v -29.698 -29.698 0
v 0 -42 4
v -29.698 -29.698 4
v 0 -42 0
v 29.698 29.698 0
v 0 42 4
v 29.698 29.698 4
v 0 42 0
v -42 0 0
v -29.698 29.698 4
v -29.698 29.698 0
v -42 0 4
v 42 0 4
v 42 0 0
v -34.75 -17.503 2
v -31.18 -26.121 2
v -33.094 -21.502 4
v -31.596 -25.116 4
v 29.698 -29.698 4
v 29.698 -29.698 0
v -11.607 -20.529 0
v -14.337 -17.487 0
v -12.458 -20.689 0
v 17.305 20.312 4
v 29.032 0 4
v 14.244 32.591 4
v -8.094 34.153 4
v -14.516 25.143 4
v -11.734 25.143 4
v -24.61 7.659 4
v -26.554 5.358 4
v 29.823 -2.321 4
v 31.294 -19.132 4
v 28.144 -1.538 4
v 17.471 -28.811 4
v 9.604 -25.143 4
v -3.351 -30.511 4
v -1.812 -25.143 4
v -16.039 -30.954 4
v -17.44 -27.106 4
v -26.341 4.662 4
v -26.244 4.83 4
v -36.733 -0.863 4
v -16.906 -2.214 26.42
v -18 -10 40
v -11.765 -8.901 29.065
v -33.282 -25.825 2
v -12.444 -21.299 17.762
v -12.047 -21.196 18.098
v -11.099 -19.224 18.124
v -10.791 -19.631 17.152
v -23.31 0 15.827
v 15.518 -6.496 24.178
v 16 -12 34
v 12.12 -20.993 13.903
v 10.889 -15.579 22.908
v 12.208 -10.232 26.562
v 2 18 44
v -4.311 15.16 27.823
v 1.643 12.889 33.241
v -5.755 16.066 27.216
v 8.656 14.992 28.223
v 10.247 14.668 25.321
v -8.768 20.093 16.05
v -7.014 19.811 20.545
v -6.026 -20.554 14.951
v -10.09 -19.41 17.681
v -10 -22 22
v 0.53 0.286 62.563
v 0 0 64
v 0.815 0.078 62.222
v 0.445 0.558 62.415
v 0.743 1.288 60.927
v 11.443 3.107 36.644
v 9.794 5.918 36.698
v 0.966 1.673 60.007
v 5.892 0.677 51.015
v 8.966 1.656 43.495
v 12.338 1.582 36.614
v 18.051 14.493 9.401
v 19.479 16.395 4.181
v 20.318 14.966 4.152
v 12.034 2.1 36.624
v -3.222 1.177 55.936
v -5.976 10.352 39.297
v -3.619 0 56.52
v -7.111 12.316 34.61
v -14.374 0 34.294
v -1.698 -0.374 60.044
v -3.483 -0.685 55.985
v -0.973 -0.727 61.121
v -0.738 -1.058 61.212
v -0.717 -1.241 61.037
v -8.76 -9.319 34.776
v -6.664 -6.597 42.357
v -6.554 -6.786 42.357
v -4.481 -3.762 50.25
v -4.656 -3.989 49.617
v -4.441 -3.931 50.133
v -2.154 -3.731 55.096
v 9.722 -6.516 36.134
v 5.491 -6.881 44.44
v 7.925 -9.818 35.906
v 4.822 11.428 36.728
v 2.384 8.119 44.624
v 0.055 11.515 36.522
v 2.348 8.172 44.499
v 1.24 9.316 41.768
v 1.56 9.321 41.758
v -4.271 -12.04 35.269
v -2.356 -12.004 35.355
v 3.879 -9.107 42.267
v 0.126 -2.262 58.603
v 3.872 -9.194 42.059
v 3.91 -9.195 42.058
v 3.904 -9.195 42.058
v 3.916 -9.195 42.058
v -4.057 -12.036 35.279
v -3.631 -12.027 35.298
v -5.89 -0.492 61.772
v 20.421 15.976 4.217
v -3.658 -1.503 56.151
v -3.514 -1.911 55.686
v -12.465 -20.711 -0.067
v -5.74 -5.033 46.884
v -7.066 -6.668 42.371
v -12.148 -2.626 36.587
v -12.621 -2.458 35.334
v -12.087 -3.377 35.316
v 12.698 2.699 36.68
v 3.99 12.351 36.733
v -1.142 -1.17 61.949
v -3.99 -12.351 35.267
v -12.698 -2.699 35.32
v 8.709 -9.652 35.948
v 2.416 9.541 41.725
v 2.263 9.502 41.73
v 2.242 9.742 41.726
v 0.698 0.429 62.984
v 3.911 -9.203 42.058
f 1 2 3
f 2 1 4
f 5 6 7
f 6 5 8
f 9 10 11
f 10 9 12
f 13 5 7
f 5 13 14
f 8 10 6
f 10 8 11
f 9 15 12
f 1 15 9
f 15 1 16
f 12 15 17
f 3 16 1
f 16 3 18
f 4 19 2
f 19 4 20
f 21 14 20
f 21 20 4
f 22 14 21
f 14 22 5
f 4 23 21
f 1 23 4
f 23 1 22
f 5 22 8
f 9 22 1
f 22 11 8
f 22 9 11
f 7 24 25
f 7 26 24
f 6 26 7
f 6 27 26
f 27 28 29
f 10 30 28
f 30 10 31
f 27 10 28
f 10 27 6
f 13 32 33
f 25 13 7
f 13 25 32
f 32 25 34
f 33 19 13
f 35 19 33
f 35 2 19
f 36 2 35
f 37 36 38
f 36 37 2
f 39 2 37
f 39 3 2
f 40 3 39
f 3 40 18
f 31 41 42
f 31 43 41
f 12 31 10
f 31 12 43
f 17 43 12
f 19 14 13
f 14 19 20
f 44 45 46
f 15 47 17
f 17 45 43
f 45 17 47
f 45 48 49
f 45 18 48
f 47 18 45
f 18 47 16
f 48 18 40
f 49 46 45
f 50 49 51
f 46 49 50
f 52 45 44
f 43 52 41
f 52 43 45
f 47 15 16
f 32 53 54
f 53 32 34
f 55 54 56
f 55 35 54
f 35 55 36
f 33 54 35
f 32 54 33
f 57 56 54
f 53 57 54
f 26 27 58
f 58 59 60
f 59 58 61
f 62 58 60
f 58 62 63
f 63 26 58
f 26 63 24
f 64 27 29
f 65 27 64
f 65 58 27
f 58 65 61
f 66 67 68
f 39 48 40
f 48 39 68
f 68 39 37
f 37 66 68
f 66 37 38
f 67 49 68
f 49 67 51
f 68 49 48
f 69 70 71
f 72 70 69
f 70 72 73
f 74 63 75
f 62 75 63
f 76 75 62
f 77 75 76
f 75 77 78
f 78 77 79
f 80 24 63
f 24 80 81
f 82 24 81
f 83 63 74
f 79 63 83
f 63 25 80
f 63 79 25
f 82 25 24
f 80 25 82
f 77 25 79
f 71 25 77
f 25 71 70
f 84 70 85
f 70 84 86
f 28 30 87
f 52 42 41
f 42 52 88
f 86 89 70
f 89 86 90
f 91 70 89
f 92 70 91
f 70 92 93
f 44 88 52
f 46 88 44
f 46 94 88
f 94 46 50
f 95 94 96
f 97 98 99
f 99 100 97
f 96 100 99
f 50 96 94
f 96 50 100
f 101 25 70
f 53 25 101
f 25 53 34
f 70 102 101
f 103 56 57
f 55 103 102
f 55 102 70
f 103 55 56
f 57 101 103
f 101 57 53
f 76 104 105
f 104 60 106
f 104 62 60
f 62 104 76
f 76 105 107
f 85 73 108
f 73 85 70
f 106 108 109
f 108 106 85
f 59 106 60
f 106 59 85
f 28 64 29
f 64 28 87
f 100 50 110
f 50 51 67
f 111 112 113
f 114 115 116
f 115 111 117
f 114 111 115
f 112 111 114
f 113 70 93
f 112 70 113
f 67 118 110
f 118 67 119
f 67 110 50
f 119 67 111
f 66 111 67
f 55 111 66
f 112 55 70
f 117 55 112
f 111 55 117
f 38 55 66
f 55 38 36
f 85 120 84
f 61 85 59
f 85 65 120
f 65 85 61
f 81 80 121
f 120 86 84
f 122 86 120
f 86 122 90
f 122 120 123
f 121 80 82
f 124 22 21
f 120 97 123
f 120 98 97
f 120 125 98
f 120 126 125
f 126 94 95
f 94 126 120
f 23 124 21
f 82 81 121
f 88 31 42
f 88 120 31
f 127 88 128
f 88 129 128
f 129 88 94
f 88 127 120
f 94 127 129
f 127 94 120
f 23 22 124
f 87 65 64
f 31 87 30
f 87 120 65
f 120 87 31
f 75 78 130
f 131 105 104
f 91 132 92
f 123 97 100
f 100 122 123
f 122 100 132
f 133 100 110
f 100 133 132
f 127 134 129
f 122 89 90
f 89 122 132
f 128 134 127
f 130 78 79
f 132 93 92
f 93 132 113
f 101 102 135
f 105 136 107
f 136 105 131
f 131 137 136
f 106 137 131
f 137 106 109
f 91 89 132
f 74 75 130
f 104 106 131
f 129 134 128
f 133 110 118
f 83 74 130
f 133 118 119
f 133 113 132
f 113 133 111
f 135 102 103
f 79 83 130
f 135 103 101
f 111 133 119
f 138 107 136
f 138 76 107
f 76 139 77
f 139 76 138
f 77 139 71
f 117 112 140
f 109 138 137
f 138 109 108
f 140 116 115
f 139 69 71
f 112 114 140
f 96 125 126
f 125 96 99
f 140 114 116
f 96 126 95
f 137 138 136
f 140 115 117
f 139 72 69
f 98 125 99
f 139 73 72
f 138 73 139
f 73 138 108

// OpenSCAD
// Low-Poly Jagged Snowy Mountain Peak
// Generated for Vibe Foundry Daily 3D Model (2026-07-25)

$fn = 6; // Hexagonal/low-poly style facets

// Color Palette
color_rock_dark = [0.28, 0.30, 0.34];
color_rock_mid  = [0.42, 0.45, 0.48];
color_rock_light= [0.55, 0.58, 0.62];
color_snow      = [0.95, 0.97, 1.00];

module mountain_peak(height=60, radius=35, facets=6, twist=15) {
    rotate([0, 0, twist])
    cylinder(h=height, r1=radius, r2=0, $fn=facets);
}

module snow_cap(height=22, radius=13, z_offset=38, facets=6, twist=15) {
    translate([0, 0, z_offset])
    rotate([0, 0, twist])
    cylinder(h=height, r1=radius, r2=0, $fn=facets);
}

union() {
    // Ground Base
    color(color_rock_dark)
    translate([0, 0, 0])
    cylinder(h=4, r=42, $fn=8);

    // Secondary Ridge Peak 1 (Left)
    color(color_rock_dark)
    translate([-18, -10, 2])
    mountain_peak(height=38, radius=22, facets=5, twist=10);
    
    color(color_snow)
    translate([-18, -10, 2])
    snow_cap(height=14, radius=8, z_offset=24, facets=5, twist=10);

    // Secondary Ridge Peak 2 (Right Front)
    color(color_rock_mid)
    translate([16, -12, 2])
    mountain_peak(height=32, radius=18, facets=6, twist=35);
    
    color(color_snow)
    translate([16, -12, 2])
    snow_cap(height=11, radius=6, z_offset=21, facets=6, twist=35);

    // Secondary Ridge Peak 3 (Back)
    color(color_rock_dark)
    translate([2, 18, 2])
    mountain_peak(height=42, radius=20, facets=5, twist=50);

    color(color_snow)
    translate([2, 18, 2])
    snow_cap(height=15, radius=7, z_offset=27, facets=5, twist=50);

    // Small Jagged Crag (Front Left)
    color(color_rock_light)
    translate([-10, -22, 2])
    mountain_peak(height=20, radius=12, facets=5, twist=20);

    // Main Central Peak (Tallest & Jagged)
    color(color_rock_mid)
    translate([0, 0, 2])
    mountain_peak(height=62, radius=30, facets=6, twist=0);

    // Extra jagged overlay peak for asymmetry
    color(color_rock_light)
    translate([-2, 3, 2])
    rotate([3, -4, 5])
    mountain_peak(height=60, radius=26, facets=5, twist=25);

    // Main Snow Cap (Layer 1 - Collar/Shoulder)
    color(color_snow)
    translate([0, 0, 36])
    rotate([2, -3, 12])
    cylinder(h=26, r1=13, r2=0, $fn=6);

    // Main Snow Cap Peak Tip
    color(color_snow)
    translate([0, 0, 42])
    rotate([-1, 2, 5])
    cylinder(h=21, r1=10, r2=0, $fn=5);
}
